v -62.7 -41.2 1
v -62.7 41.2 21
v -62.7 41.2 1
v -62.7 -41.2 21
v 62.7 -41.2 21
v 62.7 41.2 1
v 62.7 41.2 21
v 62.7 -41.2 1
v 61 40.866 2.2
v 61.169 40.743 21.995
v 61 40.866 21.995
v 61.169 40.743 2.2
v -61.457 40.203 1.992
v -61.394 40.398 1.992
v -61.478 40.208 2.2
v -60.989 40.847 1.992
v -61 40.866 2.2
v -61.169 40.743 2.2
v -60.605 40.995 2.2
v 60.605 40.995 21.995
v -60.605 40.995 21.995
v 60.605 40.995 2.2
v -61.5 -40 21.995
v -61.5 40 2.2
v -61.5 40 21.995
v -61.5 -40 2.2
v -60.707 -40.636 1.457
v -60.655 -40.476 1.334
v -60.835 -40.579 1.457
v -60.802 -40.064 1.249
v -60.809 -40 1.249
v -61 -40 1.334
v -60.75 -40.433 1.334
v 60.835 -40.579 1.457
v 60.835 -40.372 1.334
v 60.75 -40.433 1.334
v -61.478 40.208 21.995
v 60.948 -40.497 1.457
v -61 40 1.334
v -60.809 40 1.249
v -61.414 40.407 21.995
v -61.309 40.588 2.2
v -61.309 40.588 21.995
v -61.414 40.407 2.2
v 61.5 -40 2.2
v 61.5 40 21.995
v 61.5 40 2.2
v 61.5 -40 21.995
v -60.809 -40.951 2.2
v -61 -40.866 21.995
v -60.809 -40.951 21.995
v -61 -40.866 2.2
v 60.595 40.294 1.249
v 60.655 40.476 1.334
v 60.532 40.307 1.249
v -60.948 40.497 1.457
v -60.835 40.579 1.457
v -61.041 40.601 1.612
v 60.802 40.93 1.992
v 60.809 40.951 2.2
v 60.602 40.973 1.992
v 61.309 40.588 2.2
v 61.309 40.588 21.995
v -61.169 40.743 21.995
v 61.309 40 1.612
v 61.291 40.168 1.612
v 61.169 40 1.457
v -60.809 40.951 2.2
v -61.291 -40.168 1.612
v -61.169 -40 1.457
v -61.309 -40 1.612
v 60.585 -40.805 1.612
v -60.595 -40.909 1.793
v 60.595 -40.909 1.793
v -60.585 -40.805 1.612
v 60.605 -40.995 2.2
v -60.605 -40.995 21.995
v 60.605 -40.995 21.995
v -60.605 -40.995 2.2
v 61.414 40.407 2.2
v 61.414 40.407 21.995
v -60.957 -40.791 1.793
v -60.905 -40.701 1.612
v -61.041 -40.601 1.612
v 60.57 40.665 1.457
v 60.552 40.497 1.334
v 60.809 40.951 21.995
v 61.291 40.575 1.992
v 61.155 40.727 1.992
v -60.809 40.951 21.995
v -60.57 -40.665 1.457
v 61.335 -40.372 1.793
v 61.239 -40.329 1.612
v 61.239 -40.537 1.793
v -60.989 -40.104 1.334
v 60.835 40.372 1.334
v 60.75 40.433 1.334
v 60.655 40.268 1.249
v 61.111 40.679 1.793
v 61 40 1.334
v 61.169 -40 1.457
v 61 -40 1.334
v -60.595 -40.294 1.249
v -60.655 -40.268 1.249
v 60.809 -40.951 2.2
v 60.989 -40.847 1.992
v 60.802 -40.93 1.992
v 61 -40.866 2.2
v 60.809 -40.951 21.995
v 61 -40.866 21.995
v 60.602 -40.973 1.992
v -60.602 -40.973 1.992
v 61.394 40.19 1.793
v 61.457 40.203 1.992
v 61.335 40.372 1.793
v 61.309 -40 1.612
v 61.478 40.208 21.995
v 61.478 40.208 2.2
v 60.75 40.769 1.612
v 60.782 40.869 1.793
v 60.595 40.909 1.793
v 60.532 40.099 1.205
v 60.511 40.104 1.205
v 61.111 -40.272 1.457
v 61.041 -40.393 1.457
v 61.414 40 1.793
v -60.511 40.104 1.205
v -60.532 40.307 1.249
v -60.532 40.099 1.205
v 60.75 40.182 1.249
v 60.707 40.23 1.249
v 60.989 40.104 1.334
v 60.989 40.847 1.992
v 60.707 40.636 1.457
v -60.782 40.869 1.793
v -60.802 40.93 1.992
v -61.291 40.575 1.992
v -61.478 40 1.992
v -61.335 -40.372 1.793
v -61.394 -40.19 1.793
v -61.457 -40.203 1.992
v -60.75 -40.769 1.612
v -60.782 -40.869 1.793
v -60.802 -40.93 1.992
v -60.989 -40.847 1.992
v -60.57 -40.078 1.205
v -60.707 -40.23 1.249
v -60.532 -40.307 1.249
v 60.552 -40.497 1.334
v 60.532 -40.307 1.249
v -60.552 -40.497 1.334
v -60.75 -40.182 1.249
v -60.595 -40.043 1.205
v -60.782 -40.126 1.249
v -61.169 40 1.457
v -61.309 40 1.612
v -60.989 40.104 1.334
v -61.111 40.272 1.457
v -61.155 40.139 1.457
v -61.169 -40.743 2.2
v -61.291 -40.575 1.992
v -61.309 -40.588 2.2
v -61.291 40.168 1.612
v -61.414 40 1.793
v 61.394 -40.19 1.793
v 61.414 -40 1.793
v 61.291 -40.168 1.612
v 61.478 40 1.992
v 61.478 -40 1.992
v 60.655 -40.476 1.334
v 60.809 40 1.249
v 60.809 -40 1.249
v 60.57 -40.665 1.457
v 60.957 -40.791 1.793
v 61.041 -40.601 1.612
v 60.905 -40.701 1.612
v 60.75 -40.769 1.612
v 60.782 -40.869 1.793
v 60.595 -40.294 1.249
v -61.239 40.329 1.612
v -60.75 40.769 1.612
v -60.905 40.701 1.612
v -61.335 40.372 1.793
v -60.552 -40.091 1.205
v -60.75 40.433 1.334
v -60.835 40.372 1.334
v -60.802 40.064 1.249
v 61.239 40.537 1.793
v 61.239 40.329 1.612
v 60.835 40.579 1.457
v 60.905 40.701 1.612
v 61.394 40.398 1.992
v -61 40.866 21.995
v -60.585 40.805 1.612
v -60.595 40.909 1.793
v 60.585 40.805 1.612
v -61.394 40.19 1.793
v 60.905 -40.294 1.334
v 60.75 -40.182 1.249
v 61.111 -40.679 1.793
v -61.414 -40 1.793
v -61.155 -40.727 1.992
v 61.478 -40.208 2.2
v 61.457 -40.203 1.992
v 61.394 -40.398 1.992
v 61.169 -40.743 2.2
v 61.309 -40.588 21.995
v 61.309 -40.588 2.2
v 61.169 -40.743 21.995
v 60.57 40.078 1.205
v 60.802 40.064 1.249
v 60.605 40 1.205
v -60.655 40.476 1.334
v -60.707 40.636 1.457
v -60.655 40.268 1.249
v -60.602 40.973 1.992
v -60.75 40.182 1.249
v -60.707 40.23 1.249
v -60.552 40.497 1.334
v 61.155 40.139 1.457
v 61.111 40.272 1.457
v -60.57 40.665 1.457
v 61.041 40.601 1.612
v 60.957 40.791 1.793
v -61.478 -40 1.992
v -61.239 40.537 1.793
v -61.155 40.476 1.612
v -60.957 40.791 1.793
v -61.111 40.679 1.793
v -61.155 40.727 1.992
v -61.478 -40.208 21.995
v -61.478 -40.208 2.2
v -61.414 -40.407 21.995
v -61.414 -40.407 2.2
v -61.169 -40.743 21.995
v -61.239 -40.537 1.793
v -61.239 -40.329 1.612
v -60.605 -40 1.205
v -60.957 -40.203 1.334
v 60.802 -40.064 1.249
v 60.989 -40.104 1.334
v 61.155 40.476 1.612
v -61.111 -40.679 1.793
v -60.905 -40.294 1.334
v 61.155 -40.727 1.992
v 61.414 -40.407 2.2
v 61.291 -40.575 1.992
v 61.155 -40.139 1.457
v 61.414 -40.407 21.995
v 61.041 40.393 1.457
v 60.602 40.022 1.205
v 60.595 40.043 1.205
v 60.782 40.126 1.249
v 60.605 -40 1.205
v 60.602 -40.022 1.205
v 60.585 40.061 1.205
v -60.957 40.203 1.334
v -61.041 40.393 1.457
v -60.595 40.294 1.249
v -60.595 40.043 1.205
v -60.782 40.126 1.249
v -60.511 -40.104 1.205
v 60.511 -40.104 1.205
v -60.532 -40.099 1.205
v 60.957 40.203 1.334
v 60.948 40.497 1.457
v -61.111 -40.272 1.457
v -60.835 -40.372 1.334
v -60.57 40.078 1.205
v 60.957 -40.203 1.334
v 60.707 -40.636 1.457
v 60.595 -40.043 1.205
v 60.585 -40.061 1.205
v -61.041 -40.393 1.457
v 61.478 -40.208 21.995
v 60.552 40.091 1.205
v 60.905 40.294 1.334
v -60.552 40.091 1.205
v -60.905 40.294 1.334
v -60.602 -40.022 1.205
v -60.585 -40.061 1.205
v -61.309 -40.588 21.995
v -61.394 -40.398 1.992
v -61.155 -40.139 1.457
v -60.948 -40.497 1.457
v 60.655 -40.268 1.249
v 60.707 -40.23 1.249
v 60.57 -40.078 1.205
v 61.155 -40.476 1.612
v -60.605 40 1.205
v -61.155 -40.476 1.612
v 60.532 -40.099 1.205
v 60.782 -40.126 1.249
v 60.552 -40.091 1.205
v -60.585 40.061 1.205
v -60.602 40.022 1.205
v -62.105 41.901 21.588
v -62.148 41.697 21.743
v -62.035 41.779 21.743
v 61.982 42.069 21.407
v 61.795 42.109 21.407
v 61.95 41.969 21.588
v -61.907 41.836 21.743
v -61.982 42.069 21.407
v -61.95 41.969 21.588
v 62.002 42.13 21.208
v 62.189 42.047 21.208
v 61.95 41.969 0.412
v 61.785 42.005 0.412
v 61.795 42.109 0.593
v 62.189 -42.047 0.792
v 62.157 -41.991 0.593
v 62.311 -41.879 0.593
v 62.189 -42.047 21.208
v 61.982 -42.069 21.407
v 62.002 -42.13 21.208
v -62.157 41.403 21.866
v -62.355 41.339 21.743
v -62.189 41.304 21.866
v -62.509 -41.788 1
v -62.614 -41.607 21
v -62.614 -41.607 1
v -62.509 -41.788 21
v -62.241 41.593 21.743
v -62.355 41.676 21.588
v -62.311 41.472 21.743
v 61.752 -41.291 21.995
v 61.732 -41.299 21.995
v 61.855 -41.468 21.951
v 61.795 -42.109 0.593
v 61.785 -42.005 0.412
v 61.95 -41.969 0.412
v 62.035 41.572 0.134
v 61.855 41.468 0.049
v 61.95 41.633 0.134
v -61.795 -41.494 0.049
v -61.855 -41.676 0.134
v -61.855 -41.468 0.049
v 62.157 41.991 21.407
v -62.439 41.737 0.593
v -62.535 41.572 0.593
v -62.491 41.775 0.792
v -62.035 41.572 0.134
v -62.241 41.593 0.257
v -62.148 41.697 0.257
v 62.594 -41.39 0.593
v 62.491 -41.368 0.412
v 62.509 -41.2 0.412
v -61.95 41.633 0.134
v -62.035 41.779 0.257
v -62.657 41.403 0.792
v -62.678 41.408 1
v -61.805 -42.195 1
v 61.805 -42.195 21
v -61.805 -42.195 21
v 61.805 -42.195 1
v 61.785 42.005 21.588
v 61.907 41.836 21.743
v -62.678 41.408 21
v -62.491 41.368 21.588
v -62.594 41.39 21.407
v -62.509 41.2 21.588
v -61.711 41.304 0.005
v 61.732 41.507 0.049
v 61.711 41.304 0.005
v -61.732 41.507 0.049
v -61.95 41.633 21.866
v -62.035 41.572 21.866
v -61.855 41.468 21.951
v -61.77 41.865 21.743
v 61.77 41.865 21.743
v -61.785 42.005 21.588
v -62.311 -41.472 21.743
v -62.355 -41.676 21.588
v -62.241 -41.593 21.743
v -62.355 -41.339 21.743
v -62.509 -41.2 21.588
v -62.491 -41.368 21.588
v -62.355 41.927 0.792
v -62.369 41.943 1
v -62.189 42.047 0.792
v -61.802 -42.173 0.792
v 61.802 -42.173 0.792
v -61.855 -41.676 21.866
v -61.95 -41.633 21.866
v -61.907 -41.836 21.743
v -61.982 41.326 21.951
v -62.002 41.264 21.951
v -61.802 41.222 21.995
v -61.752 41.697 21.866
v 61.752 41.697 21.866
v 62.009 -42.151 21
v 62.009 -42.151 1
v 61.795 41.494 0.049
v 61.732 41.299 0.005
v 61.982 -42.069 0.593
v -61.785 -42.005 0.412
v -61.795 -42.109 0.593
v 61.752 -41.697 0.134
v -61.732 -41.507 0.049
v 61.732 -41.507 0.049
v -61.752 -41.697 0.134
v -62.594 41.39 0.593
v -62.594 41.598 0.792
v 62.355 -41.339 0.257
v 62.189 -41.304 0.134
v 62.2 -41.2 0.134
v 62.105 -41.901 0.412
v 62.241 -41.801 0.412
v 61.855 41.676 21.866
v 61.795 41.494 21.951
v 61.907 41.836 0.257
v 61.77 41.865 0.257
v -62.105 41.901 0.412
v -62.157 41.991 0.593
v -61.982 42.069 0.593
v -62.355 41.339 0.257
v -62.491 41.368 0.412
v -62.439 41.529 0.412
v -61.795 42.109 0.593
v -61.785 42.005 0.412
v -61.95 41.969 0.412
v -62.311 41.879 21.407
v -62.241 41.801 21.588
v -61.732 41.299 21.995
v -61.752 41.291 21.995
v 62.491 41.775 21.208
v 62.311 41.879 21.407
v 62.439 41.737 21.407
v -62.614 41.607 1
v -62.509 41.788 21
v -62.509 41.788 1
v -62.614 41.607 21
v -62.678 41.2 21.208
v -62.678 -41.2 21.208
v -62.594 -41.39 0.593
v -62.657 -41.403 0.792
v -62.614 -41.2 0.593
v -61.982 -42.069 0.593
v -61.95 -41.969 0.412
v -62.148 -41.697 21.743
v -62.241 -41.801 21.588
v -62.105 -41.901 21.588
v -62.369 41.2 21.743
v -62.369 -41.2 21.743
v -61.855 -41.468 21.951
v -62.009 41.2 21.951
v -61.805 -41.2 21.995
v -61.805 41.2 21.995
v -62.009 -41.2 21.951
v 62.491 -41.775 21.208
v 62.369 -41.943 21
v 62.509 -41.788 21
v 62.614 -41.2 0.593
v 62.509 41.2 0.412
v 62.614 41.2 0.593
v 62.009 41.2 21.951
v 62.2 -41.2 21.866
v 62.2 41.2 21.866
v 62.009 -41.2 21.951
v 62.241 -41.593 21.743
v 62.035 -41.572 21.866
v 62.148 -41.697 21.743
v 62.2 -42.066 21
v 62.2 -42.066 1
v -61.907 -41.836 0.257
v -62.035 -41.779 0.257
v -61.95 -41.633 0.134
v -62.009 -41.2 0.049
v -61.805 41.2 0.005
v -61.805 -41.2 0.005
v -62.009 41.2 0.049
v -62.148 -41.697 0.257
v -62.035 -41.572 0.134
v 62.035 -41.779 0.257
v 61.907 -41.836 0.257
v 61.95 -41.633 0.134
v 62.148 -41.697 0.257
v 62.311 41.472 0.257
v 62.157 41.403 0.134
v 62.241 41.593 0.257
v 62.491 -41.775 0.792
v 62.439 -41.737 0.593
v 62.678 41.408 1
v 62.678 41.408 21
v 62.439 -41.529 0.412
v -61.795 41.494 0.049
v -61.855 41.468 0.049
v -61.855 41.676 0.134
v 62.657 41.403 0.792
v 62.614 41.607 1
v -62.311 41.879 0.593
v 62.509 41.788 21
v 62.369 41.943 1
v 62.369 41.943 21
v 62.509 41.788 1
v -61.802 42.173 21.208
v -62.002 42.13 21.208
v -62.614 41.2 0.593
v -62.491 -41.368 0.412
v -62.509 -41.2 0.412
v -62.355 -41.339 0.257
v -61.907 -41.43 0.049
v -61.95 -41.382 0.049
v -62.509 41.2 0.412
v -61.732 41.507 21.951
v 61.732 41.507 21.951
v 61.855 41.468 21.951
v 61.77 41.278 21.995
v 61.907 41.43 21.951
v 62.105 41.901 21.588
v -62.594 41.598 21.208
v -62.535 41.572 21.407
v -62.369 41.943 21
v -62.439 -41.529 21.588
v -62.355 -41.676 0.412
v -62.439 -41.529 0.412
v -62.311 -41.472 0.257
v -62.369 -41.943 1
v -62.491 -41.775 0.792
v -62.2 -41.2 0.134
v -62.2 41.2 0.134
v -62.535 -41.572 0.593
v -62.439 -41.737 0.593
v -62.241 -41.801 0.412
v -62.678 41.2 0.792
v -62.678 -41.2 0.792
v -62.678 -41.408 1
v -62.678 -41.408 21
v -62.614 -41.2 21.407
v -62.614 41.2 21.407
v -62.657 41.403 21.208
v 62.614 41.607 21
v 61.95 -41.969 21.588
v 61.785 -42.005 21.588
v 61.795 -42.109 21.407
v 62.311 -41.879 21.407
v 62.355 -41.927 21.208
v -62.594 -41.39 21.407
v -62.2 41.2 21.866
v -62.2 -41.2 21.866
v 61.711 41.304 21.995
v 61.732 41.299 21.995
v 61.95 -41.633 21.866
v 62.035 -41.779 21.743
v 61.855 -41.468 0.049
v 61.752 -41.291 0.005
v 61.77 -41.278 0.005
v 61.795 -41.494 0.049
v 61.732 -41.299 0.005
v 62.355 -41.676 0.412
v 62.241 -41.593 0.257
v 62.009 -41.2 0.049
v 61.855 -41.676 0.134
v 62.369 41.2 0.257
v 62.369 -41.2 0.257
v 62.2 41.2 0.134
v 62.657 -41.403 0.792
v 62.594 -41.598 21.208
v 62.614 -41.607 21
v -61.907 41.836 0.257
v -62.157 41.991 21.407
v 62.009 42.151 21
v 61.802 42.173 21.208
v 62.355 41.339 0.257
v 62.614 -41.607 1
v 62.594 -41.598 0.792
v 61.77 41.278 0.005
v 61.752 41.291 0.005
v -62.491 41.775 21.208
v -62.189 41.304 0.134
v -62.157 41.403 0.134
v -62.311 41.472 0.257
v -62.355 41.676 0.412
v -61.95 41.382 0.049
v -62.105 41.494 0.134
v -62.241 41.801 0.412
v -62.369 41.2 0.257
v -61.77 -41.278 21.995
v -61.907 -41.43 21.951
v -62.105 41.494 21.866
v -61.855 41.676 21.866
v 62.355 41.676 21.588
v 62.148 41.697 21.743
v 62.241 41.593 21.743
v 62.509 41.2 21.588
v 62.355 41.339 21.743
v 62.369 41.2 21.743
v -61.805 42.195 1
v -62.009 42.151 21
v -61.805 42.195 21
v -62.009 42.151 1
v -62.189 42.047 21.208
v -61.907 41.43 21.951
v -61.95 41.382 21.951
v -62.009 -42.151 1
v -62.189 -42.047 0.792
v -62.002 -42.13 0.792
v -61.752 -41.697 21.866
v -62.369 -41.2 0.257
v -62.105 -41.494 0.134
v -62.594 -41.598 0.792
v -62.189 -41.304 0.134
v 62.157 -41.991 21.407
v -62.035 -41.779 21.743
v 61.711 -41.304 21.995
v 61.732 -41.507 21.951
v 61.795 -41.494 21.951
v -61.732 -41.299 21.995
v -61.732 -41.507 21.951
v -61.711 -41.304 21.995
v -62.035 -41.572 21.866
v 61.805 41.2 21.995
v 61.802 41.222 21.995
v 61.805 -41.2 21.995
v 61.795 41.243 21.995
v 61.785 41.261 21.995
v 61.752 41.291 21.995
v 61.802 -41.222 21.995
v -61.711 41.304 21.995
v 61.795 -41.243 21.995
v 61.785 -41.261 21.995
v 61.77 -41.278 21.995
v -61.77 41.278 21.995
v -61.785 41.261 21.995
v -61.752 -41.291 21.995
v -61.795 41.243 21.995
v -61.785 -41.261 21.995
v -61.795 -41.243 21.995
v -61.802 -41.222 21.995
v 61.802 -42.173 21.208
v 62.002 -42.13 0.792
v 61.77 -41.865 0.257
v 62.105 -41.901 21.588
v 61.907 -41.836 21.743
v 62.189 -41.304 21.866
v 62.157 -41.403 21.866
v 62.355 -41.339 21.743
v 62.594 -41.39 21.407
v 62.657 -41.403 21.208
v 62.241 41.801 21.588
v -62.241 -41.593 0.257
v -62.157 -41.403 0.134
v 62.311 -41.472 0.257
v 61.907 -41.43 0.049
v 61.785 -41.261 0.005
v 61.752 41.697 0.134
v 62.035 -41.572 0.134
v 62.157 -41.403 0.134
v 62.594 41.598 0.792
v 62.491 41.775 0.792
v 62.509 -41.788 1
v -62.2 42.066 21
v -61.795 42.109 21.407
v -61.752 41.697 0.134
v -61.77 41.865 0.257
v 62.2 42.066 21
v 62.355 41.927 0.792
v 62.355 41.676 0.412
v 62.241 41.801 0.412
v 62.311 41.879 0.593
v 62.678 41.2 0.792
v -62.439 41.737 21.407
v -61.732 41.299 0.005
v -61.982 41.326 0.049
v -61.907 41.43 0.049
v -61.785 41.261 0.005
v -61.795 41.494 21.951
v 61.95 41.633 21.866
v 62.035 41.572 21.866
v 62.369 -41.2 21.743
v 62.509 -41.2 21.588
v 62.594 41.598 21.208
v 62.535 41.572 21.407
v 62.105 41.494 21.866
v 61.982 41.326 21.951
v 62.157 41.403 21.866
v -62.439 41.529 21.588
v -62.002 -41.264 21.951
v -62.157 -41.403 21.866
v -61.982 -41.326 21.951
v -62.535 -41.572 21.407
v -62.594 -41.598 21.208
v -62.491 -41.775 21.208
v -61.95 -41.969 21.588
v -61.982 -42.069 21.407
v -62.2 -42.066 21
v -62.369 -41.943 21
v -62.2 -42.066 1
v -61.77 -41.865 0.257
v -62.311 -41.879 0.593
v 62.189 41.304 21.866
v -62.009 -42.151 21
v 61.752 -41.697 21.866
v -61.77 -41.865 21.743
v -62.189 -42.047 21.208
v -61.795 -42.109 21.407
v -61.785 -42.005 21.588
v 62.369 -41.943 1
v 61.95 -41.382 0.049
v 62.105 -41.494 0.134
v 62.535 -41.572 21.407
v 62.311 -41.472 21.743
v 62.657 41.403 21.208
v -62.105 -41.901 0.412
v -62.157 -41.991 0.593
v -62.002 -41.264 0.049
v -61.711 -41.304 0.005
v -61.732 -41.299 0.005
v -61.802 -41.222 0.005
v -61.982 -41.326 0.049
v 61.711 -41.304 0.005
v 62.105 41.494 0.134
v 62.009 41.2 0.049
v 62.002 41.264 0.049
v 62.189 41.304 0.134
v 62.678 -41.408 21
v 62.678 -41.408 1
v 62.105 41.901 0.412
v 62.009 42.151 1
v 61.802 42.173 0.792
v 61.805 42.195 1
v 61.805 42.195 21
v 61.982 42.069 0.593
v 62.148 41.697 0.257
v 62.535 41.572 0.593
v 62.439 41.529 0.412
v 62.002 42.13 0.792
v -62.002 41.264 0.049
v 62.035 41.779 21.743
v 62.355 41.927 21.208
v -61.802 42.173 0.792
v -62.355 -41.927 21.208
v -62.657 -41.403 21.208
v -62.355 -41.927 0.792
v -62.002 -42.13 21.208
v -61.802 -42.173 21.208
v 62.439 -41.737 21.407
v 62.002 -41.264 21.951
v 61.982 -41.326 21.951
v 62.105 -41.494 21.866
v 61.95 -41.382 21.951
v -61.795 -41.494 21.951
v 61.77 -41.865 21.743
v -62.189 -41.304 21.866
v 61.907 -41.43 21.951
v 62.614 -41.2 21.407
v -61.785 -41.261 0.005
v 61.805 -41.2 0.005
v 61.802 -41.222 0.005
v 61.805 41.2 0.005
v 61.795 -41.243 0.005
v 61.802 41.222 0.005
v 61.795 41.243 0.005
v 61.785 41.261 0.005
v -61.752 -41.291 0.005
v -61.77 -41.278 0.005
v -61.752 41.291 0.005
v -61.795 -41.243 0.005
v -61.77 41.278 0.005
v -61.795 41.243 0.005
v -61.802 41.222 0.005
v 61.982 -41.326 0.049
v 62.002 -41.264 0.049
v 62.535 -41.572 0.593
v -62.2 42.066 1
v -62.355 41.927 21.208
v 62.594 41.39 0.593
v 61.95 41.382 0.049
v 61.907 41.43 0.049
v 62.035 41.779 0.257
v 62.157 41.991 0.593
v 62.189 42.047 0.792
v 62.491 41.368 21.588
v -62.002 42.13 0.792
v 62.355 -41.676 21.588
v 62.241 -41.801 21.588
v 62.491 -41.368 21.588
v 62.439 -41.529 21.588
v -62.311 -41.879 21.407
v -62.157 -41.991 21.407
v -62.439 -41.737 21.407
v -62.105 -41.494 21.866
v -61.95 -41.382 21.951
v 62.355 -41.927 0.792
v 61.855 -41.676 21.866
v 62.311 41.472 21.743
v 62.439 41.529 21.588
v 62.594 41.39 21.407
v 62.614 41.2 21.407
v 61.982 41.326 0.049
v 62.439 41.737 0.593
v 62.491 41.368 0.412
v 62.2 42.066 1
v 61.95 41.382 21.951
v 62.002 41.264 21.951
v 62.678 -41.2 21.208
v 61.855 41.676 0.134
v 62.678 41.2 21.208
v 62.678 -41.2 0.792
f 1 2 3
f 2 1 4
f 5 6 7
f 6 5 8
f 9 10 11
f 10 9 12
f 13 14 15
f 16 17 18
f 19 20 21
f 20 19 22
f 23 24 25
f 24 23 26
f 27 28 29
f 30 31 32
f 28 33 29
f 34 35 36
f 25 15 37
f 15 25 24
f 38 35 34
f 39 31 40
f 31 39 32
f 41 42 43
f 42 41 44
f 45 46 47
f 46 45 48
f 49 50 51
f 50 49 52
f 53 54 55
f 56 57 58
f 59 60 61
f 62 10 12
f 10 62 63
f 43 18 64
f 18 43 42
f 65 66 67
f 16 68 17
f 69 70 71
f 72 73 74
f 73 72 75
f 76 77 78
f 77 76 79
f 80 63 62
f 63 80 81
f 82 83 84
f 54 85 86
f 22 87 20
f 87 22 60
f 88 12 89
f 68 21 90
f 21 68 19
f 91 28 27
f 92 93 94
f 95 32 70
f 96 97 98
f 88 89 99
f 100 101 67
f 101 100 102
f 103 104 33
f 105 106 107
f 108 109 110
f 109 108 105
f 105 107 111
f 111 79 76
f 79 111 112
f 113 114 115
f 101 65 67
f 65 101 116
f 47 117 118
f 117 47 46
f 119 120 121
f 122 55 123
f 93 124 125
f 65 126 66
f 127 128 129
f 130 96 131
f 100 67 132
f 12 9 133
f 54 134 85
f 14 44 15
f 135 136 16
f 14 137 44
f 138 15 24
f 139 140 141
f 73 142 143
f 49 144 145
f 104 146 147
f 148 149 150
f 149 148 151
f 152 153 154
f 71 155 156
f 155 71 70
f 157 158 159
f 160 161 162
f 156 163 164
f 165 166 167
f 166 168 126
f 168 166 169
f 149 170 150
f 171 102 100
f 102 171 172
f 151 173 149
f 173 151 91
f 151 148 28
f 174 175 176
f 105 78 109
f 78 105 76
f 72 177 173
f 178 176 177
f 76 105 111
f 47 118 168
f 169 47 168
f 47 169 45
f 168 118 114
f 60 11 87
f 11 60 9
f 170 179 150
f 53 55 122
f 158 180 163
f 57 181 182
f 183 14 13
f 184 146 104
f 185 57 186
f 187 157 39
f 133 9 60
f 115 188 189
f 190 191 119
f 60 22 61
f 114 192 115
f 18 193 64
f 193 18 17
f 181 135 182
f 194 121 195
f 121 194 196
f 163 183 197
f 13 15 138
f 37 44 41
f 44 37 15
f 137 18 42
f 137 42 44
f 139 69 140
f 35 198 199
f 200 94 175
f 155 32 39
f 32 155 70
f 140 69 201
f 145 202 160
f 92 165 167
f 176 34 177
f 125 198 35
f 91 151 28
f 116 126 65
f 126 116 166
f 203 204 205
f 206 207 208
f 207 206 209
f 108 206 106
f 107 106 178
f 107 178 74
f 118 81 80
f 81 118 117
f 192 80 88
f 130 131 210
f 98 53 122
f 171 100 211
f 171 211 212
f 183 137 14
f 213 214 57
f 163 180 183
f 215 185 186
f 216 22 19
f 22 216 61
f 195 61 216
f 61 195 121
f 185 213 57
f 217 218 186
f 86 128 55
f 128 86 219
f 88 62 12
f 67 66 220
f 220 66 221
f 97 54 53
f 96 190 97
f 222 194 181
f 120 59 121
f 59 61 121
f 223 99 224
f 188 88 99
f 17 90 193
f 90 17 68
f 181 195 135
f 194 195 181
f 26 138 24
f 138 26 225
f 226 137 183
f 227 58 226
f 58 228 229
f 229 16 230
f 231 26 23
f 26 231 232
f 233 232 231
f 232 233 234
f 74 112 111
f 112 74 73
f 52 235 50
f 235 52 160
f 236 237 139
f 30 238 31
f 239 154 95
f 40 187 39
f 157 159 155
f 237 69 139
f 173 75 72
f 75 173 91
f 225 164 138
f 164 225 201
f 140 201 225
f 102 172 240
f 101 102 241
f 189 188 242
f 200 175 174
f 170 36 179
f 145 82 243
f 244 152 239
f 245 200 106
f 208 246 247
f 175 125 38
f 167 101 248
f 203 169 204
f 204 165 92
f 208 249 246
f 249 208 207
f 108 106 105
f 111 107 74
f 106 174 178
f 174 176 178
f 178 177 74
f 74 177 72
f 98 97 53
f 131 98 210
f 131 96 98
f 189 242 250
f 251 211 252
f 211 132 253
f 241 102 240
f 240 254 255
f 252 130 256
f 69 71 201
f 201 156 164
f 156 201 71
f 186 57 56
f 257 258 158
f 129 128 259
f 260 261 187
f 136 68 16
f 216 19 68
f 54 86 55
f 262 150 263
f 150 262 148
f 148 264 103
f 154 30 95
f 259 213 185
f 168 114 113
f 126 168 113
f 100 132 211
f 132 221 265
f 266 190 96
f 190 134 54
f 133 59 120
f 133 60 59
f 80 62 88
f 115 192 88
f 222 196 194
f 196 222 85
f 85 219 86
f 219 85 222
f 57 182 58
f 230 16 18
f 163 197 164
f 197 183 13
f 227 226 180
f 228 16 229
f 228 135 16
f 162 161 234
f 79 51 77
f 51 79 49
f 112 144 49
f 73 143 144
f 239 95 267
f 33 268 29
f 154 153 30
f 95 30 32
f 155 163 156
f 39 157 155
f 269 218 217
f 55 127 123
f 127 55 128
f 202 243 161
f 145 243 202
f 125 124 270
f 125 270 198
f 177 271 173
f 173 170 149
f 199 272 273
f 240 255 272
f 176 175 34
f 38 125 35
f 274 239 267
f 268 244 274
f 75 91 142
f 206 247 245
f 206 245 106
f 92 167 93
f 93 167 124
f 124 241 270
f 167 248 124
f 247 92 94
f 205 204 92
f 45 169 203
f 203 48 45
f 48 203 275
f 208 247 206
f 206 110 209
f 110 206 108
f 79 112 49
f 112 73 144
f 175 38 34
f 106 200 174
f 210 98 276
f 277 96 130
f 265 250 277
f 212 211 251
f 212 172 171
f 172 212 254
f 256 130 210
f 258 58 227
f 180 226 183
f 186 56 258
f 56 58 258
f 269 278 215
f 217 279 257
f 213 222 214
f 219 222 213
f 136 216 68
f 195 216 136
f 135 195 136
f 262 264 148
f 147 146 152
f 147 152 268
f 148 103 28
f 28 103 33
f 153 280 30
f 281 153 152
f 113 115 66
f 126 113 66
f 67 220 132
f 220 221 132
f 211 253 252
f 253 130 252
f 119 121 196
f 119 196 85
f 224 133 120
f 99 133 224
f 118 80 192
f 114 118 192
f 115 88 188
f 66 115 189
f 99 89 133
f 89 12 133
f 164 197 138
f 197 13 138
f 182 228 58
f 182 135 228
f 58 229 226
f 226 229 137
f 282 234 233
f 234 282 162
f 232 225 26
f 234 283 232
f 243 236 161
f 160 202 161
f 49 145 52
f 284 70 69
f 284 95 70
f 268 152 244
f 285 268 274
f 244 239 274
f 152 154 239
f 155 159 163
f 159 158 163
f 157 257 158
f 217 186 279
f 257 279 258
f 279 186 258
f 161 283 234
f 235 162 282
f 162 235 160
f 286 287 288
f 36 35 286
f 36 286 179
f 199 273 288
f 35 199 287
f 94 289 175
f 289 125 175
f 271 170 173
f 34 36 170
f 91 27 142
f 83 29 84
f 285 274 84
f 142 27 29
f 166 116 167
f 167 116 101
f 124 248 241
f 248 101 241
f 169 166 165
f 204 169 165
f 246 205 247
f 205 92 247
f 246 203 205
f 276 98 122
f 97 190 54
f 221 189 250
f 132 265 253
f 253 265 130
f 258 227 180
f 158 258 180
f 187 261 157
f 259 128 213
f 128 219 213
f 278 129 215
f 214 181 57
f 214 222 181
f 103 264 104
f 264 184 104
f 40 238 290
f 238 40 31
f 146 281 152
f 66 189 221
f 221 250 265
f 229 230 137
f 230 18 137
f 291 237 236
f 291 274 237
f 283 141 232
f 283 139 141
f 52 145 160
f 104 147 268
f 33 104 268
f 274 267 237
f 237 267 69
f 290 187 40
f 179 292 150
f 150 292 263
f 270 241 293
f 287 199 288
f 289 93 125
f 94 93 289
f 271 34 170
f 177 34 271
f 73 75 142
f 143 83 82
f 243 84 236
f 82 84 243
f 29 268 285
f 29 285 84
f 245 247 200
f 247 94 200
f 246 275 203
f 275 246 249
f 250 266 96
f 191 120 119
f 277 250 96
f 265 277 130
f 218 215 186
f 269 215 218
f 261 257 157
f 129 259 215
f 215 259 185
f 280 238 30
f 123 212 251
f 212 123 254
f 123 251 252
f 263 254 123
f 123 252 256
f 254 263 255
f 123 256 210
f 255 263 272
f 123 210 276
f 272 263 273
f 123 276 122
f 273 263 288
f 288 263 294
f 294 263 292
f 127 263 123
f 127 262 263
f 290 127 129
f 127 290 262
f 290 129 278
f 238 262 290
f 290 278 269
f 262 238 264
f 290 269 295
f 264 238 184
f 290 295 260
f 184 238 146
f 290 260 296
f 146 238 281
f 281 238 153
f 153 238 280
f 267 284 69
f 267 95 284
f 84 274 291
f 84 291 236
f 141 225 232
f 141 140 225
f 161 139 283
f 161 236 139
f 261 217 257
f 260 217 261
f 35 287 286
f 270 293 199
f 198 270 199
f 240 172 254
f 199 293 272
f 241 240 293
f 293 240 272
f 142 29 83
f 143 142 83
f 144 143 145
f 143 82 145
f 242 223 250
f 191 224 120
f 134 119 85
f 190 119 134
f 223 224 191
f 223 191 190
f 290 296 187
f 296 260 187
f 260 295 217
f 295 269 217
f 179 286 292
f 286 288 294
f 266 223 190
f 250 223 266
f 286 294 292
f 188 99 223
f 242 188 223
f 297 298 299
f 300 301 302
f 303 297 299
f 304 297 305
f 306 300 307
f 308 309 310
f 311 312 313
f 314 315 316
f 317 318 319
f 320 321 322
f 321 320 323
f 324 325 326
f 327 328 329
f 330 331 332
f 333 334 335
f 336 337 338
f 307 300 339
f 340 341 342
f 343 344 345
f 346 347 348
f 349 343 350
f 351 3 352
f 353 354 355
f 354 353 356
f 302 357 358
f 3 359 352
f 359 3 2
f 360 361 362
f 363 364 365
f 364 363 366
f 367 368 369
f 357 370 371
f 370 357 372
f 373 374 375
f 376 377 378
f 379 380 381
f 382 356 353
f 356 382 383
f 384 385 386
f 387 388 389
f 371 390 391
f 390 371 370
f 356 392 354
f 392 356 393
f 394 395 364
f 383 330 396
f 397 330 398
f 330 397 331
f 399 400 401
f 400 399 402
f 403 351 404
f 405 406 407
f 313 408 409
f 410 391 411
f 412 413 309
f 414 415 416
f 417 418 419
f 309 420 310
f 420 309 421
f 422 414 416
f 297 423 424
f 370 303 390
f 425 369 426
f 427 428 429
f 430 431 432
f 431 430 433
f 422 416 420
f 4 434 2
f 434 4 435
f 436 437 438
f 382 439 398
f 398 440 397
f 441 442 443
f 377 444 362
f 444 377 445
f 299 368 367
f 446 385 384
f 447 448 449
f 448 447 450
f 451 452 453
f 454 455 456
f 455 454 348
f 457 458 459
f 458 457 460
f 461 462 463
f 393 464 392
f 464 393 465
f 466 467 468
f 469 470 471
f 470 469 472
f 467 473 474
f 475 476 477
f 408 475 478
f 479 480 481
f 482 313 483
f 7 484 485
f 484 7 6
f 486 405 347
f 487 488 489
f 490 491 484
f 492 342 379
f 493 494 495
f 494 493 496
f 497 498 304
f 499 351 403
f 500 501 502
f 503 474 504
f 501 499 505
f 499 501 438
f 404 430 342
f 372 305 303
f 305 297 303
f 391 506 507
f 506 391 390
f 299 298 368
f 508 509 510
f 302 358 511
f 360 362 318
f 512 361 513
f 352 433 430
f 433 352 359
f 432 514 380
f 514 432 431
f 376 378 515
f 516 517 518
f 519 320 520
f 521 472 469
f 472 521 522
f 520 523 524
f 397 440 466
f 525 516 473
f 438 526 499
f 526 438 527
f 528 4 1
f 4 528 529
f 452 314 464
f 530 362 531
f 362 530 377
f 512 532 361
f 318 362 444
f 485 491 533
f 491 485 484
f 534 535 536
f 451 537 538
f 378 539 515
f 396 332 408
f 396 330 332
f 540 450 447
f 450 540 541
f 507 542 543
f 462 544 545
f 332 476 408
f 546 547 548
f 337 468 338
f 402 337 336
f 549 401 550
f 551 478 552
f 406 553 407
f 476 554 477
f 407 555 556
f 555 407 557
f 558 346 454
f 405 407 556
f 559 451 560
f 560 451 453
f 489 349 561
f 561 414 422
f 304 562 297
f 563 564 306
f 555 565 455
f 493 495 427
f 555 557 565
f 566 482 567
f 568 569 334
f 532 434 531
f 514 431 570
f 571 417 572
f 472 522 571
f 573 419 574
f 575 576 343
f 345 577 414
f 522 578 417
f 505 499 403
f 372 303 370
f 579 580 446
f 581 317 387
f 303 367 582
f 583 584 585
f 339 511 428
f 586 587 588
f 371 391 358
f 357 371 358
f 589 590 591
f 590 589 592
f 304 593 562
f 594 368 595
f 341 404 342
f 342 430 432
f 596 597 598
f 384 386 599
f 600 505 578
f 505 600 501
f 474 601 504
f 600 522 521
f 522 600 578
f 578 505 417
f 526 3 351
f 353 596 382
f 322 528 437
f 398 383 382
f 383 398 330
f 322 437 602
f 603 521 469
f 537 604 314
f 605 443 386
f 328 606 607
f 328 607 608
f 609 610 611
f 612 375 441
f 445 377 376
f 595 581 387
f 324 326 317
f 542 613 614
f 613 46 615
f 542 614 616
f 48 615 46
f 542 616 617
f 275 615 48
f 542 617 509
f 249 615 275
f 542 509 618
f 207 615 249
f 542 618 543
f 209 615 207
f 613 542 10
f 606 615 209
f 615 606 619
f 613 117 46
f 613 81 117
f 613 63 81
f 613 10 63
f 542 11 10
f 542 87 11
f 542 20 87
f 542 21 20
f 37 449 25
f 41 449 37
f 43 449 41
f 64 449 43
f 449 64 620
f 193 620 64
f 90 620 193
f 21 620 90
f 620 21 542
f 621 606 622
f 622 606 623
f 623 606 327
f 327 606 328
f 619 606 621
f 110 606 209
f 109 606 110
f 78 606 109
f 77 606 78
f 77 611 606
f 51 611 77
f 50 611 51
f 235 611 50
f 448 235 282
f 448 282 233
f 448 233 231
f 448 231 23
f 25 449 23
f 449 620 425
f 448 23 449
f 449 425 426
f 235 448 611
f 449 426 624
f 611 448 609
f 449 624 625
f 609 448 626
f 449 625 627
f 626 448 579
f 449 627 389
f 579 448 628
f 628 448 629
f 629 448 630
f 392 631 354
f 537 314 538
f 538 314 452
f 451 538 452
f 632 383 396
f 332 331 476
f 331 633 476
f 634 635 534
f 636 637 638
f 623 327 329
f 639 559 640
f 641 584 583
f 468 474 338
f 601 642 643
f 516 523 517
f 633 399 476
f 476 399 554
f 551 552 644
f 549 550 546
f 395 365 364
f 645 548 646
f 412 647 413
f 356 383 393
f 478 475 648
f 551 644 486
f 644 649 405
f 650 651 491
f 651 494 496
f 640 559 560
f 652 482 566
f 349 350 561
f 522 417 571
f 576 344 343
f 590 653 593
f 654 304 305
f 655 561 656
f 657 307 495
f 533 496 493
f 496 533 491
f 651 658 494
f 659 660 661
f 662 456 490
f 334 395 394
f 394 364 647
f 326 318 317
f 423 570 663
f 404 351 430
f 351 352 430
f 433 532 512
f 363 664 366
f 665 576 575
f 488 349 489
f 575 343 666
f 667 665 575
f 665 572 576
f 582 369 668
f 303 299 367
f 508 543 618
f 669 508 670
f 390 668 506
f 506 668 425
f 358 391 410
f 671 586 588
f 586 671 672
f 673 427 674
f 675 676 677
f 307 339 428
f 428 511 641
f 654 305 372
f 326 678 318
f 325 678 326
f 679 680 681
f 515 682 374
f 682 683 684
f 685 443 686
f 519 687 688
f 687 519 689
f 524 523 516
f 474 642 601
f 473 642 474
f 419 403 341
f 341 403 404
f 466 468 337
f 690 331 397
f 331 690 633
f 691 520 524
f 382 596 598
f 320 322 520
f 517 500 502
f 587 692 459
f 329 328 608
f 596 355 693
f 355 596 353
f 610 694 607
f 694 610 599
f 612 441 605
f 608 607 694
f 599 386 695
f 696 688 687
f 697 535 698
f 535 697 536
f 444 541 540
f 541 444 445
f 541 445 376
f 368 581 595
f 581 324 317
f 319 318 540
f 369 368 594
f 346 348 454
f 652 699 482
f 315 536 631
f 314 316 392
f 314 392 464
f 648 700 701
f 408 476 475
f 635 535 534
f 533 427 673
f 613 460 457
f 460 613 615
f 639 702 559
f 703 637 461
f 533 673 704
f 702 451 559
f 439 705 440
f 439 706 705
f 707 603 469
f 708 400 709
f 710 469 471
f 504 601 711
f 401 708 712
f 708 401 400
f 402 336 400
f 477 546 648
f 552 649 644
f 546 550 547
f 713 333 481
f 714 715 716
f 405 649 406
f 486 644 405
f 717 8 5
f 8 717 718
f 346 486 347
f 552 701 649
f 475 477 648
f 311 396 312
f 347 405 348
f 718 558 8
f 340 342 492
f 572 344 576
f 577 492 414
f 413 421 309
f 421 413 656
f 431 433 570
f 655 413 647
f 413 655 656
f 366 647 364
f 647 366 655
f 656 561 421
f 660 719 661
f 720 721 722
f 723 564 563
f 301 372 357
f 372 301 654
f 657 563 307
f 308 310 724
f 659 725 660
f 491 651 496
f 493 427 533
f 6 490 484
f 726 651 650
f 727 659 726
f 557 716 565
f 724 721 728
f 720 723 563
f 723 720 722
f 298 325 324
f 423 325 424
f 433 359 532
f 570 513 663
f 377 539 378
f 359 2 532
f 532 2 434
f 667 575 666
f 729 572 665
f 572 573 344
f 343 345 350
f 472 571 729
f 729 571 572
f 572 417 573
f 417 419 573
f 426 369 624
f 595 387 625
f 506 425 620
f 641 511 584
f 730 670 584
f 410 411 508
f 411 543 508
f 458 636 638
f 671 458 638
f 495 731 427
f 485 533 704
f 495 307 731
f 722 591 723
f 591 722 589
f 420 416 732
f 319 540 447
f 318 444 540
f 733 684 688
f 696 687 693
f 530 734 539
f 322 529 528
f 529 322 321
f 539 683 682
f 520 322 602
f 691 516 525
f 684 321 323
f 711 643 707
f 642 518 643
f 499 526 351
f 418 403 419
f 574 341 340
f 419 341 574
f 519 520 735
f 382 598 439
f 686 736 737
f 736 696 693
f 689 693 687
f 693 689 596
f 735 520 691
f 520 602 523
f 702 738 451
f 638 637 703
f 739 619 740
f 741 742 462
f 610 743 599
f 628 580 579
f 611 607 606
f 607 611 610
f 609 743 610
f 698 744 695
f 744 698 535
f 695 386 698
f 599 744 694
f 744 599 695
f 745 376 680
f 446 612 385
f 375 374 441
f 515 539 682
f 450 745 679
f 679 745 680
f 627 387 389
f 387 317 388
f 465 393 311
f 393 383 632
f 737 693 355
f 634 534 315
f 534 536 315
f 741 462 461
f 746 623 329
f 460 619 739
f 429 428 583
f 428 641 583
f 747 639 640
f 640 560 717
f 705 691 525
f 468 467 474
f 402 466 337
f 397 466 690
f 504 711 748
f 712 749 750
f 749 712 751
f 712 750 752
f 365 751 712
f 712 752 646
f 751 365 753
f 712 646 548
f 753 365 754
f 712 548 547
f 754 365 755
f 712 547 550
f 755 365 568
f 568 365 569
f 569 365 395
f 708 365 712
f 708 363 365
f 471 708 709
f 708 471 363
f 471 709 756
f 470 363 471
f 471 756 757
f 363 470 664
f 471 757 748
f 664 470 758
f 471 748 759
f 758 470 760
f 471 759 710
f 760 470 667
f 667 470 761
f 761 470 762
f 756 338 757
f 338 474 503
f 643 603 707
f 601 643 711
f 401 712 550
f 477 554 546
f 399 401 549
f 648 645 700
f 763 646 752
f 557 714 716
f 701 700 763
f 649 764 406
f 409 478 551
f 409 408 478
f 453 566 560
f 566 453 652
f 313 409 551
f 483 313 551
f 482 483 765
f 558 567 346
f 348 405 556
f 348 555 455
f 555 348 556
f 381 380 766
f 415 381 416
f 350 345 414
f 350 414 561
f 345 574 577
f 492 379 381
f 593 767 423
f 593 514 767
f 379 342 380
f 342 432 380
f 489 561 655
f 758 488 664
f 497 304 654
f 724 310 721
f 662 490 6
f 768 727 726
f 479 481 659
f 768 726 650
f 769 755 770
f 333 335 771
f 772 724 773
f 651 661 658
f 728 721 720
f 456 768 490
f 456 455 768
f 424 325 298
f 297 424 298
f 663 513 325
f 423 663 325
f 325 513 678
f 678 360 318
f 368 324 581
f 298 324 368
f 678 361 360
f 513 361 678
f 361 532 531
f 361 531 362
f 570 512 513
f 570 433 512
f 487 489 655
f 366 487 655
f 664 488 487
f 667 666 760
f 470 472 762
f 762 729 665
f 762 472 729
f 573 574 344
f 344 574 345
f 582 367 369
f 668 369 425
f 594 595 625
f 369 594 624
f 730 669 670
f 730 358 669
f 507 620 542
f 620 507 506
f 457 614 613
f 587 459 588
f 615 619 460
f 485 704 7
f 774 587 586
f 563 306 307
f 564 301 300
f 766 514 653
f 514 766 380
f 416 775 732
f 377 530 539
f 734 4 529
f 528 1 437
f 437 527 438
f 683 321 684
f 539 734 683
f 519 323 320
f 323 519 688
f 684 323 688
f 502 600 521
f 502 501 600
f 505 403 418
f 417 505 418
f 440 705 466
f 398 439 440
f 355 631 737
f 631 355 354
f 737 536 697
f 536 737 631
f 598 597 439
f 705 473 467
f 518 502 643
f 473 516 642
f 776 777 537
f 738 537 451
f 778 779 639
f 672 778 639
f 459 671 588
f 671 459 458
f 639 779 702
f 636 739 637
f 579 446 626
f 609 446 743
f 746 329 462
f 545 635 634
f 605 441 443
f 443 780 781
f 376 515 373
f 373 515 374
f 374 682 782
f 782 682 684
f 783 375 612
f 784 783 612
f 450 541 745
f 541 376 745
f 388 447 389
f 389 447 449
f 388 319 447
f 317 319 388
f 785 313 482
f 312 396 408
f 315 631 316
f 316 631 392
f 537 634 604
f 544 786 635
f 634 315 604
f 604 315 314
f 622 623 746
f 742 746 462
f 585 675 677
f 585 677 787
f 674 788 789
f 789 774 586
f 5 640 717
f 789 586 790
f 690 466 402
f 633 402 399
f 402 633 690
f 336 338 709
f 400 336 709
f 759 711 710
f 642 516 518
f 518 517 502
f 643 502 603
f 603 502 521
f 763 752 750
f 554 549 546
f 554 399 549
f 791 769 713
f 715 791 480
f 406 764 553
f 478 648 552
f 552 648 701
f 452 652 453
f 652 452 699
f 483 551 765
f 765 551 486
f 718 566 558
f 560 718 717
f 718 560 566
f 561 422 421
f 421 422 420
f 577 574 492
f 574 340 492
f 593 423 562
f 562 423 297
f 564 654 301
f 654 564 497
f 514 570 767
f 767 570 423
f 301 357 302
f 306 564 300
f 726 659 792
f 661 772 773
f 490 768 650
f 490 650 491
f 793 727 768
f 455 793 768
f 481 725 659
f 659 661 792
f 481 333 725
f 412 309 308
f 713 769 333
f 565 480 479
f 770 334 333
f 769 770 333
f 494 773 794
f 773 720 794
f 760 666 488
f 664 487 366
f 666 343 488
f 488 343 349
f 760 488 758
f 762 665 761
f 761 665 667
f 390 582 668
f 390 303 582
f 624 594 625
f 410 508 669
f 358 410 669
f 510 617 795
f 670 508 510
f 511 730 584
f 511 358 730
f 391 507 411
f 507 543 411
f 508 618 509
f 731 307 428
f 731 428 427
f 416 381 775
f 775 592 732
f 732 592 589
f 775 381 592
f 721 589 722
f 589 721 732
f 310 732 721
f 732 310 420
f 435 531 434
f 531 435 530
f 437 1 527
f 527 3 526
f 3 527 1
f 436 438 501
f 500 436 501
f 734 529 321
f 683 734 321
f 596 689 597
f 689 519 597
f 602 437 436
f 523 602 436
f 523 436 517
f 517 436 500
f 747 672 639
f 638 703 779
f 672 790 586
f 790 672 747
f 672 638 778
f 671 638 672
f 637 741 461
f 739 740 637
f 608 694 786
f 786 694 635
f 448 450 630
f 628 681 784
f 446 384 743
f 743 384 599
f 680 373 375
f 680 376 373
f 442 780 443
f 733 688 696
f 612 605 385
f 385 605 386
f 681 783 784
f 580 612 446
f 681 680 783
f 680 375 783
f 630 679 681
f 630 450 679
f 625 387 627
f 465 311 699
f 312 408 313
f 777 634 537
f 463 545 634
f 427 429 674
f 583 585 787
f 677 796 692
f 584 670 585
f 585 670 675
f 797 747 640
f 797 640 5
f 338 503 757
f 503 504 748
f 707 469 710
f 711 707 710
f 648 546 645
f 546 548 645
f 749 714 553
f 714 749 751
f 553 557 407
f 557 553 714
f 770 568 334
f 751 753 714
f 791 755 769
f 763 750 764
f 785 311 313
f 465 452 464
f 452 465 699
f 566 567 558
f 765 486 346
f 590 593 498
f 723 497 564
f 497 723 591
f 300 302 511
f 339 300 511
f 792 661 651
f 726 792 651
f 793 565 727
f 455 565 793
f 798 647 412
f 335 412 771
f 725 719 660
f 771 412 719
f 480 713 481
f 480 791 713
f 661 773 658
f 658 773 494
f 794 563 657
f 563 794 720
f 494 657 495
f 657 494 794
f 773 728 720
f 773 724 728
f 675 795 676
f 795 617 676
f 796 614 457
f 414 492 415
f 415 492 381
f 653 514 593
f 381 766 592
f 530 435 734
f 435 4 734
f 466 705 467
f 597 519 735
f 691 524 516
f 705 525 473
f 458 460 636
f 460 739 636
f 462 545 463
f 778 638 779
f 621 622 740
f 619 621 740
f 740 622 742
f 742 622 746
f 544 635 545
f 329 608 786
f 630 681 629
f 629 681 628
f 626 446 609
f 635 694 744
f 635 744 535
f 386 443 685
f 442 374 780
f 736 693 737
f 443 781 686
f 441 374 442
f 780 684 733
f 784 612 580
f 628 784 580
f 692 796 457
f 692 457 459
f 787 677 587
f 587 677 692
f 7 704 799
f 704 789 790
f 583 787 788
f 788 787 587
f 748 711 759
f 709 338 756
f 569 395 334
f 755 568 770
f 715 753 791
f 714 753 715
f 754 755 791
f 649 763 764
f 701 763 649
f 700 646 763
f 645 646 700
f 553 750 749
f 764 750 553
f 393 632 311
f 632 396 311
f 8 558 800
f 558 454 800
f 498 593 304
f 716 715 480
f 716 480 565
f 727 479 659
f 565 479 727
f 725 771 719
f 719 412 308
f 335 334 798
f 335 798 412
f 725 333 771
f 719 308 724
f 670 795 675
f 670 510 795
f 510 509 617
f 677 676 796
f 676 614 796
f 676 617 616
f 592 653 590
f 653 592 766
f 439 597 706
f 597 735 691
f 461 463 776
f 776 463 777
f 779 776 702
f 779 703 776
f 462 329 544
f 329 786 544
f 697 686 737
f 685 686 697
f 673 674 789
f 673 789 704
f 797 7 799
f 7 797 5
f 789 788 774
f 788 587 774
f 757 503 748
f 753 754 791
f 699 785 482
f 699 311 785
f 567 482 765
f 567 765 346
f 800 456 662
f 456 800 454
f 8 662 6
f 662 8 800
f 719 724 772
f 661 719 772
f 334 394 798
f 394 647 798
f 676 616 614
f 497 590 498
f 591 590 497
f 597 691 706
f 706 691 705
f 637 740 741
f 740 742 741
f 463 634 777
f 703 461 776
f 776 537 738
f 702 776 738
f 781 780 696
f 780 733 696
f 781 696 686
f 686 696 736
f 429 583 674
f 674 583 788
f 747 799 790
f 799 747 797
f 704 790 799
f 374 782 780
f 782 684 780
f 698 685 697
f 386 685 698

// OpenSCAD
$fn=30;

/* [Global] */

// Render
Objects = "LidlessBox"; // [Both, Box, Lid, LidlessBox]

x_sizes = [123];
y_sizes = [82];
z_size = 22;

// Type of lid pattern
gPattern = "Fancy"; //  [Hex, Diamond, Web, Solid, Fancy]
// Tolerance
gTol = 0.3;
// Wall Thickness
gWT = 1.2;
// Curvature bottom
ipR = 1;

/* [Spider Web] */
// Amount of space from one ring or webs to the next
WebSpacing = 5;
// How many rings of webs, best of more than needed
WebStrands = 20;
// Thickness of the strands
WedThickness = 1.8;
// How many segments of web
WebWedges = 12;


/* [Hidden] */
/* Private variables */

// Check if we are in Lidless mode
isLidless = (Objects == "LidlessBox");

// Box Height
TotalZ = z_size;
LidH = 2.2;
RailThick = 1.4;
RailWidth = LidH + RailThick;

function SumList(list, start, end) = (start == end) ? 0 : list[start] + SumList(list, start+1, end);

// Box Length
TotalX = SumList(x_sizes,0,len(x_sizes)) + gWT*(len(x_sizes)+1);

// Box Width - If lidless, we don't need the extra width for the sliding rails
TotalY = isLidless ? 
    SumList(y_sizes,0,len(y_sizes)) + gWT*(len(y_sizes)+1) : 
    SumList(y_sizes,0,len(y_sizes)) + RailWidth*2 + gWT*(len(y_sizes)-1);

echo("Size: ",TotalX,TotalY);
    
// Height not counting the lid. If lidless, height is the full z_size.
AdjBoxHeight = isLidless ? TotalZ : TotalZ - LidH;

 module regular_polygon(order, r=1){
 	angles=[ for (i = [0:order-1]) i*(360/order) ];
 	coords=[ for (th=angles) [r*cos(th), r*sin(th)] ];
 	polygon(coords);
 }

module circle_lattice(ipX, ipY, Spacing=10, Walls=1.2)  {


   intersection() {
      square([ipX,ipY]); 
      union() {
	    for (x=[-Spacing:Spacing:ipX+Spacing]) {
           for (y=[-Spacing:Spacing:ipY+Spacing]){
	          difference()  {
			     translate([x+Spacing/2, y+Spacing/2]) circle(r=Spacing*0.75);
			     translate([x+Spacing/2, y+Spacing/2]) circle(r=(Spacing*0.75)-Walls);
		      }
           }   // end for y        
	    }  // end for x
      } // End union
   }
}


module diamond_lattice(ipX, ipY, DSize, WSize)  {

   lOffset = DSize + WSize;

	difference()  {
		square([ipX, ipY]);
		for (x=[0:lOffset:ipX]) {
            for (y=[0:lOffset:ipY]){
  			   translate([x, y])  regular_polygon(4, r=DSize/2);
			   translate([x+lOffset/2, y+lOffset/2]) regular_polygon(4, r=DSize/2);
		    }
        }        
	}
}

module hex_lattice(ipX, ipY, DSize, WSize)  {
    lXOffset = DSize + WSize;
    lYOffset = (DSize+WSize)/cos(30) * 1.5;

	difference()  {
		square([ipX, ipY]);
		for (x=[0:lXOffset:ipX]) {
            for (y=[0:lYOffset:ipY]){
  			   translate([x, y]) rotate([0,0,30]) regular_polygon(6, r=DSize/cos(30)/2);
			   translate([x+lXOffset/2, y+lYOffset/2]) rotate([0,0,30]) regular_polygon(6, r=DSize/cos(30)/2);
		    }
        }  
	}
}

// Make a star with X points
module star(radius, wedges)
{
	angle = 360 / wedges;
	difference() {
		circle(radius, $fn = wedges);
		for(i = [0:wedges - 1]) {
			rotate(angle / 2 + angle * i) translate([radius, 0, 0]) 
			    scale([0.8, 1, 1]) 
				    circle(radius * sin(angle / 2), $fn = 24);
		}
	}
}

module spider_web(ipWebSpacing, strands, ipThickness, wedges) 
{
	for(i = [0:strands - 1]) 
    {
        difference() {
            star(ipWebSpacing * i, wedges);
            offset(r = -ipThickness) star(ipWebSpacing * i, wedges);
        }
	}

	angle = 360 / wedges;
	for(i = [0:wedges - 1])
    {
		rotate(angle * i) translate([0, -ipThickness / 2, 0]) 
			square([ipWebSpacing * strands, ipThickness]);
	}    
}


module RCube(x,y,z,ipR=ipR) {
    translate([-x/2,-y/2,0]) hull(){
      translate([ipR,ipR,ipR]) sphere(ipR);
      translate([x-ipR,ipR,ipR]) sphere(ipR);
      translate([ipR,y-ipR,ipR]) sphere(ipR);
      translate([x-ipR,y-ipR,ipR]) sphere(ipR);
      translate([ipR,ipR,z-ipR]) sphere(ipR);
      translate([x-ipR,ipR,z-ipR]) sphere(ipR);
      translate([ipR,y-ipR,z-ipR]) sphere(ipR);
      translate([x-ipR,y-ipR,z-ipR]) sphere(ipR);
      }  
} 


module lid(ipPattern = "Hex", ipTol = 0.3){
  lAdjX = TotalX;
  lAdjY = TotalY-RailWidth*2-ipTol*2;  
  lAdjZ = LidH;
  CutX = lAdjX - 8;
  CutY = lAdjY - 8;
  lFingerX = 15;
  lFingerY = 16;  

  // main square with center removed for a pattern. 0.01 addition is a kludge to avoid a 2d surface remainging when substracting the lid from the box.
  difference() {
      translate([0,0,lAdjZ/2]) cube([lAdjX+0.01, lAdjY+0.01 , lAdjZ], center=true);

      translate([0,0,lAdjZ/2]) cube([CutX, CutY, lAdjZ], center = true);
      translate([TotalX/2-gWT/2,0,LidH/2])cube([gWT+0.01,TotalY-RailWidth,LidH],center=true);

     // make a slot for the latch can flex          
     translate([TotalX/2,TotalY/2-RailWidth-1.4,-1]) RCube(18,0.8,4,0.4);
     translate([TotalX/2,-TotalY/2+RailWidth+1.4,-1]) RCube(18,0.8,4,0.4);
  }
  
  // The Side triangles
  difference() {
    intersection () {
      union () {
          translate([-lAdjX/2,-lAdjY/2-LidH,LidH]) rotate([0,90,0]) linear_extrude(TotalX-2) polygon([[LidH,0],[LidH,LidH],[0,LidH]], paths=[[0,1,2]]);
          translate([-lAdjX/2,lAdjY/2,LidH]) rotate([0,90,0]) linear_extrude(TotalX-2) polygon([[0,0],[LidH,0],[LidH,LidH]], paths=[[0,1,2]]);
      }
      
      // check if this is real lid (ipTol>0) or negative lid (iptol = 0)
      // if real lid remove center for pattern and remove latches
      if (ipTol>0) 
         {cube([lAdjX, lAdjY + 2*LidH-0.2, lAdjZ*2], center=true);}
    }
       
    if (ipTol>0)
    {
        // cut out slots for the latch 
        translate([TotalX/2-7,lAdjY/2+RailWidth/2+ipTol,LidH/2]) scale([1.5,1,1]) rotate([0,0,45]) cube ([2+ipTol,2+ipTol,LidH+1],center=true);
          
        translate([TotalX/2-7,-lAdjY/2-RailWidth/2-ipTol,LidH/2]) scale([1.5,1,1]) rotate([0,0,45]) cube ([2+ipTol,2+ipTol,LidH+1],center=true);
  
        // trip the rail to ease going past the nub
        translate([TotalX/2,TotalY/2-LidH/2-ipTol,0]) cube([12,LidH,LidH*2],center=true); 
        translate([TotalX/2,-TotalY/2+LidH/2+ipTol,0]) cube([12,LidH,LidH*2],center=true); 
    }
    
  }
 
  // Finger slot
  difference () {
      translate([-CutX/2,-lFingerY/2,0]) cube([lFingerX, lFingerY, lAdjZ]); 
      translate([-CutX/2+lFingerX/2,0,20+LidH/2])sphere(20);     
  }


  // Solid top
  if (ipPattern == "Solid") 
      {   
       difference (){ 
          translate([-CutX/2,-CutY/2,0]) cube([CutX, CutY,   lAdjZ]);
          translate([-CutX/2,-lFingerY/2,0]) cube([lFingerX, lFingerY, lAdjZ]); 
      }
    }
    

  // Spiderweb top
  if (ipPattern == "Web") 
    {
       difference (){ 
         intersection () 
        {    
             linear_extrude(height = lAdjZ) spider_web(WebSpacing, WebStrands, WedThickness, WebWedges);  
              translate([-CutX/2,-CutY/2,0]) cube([CutX, CutY, LidH*2]); 
        }
          translate([-CutX/2,-lFingerY/2,0]) cube([lFingerX, lFingerY, lAdjZ]); 
      }
    }

  // Hex top
  if (ipPattern == "Hex") 
    {   
       difference (){ 
          translate([-CutX/2,-CutY/2,0]) linear_extrude(height = lAdjZ) hex_lattice(CutX,CutY,6,2);
          translate([-CutX/2,-lFingerY/2,0]) cube([lFingerX, lFingerY, lAdjZ]); 
      }
    }

  // Diamond top
  if (ipPattern == "Diamond") 
    {
      difference (){ 
        translate([-CutX/2,-CutY/2,0]) linear_extrude(height = lAdjZ) diamond_lattice(CutX,CutY,7,2);
        translate([-CutX/2,-lFingerY/2,0]) cube([lFingerX, lFingerY, lAdjZ]); 
      }
    }

  // fancy top
  if (ipPattern == "Fancy") 
    {
       echo(CutX,CutY);
      difference (){ 
        translate([-CutX/2,-CutY/2,0]) linear_extrude(height = lAdjZ) circle_lattice(CutX,CutY);
        translate([-CutX/2,-lFingerY/2,0]) cube([lFingerX, lFingerY, lAdjZ]); 
      }
    }

}


module box () {
//  Main Box
  difference() {    
    translate ([0,0,AdjBoxHeight/2]) cube([TotalX,TotalY,AdjBoxHeight], center = true);

    // Scope out compartment areas
    for(nX=[0:len(x_sizes)-1])
    {
      for(nY=[0:len(y_sizes)-1])
      {
          xOffset = SumList(x_sizes,0,nX) + gWT*(nX+1) + x_sizes[nX]/2 - TotalX/2;
          
          // If lidless, we start from a standard wall thickness. If lidded, we start from RailWidth.
          yStart = isLidless ? gWT : RailWidth;
          yOffset = SumList(y_sizes,0,nY) + yStart + gWT*nY + y_sizes[nY]/2 - TotalY/2;
          
          translate([xOffset,yOffset,gWT]) RCube(x_sizes[nX], y_sizes[nY] ,AdjBoxHeight+20);
      }
    }
  }

  // Only render rails, backstops, and latches if NOT LidlessBox
  if (!isLidless) {
      // top rails
      difference() {
         union() {
              translate([0,-TotalY/2+RailWidth/2,AdjBoxHeight+LidH/2]) cube([TotalX,RailWidth,LidH],center = true);  
              translate([0,TotalY/2-RailWidth/2,AdjBoxHeight+LidH/2]) cube([TotalX,RailWidth,LidH],center = true);
               }
           
          // Trim each rail top to a 45 degree angle     
          translate([0,-TotalY/2,AdjBoxHeight+RailWidth]) rotate([45,0,0]) cube([TotalX,RailWidth+0.7,RailWidth+0.7], center=true); 
          translate([0,TotalY/2,AdjBoxHeight+RailWidth])  rotate([45,0,0]) cube([TotalX,RailWidth+0.7,RailWidth+0.7], center=true);  

          // Substract the lid from the rails
          translate([0,0,AdjBoxHeight]) lid(ipPattern = "Solid",ipTol =0);      
      }  
      
       // add backstop
       translate([TotalX/2-1/2,0,TotalZ-LidH/2])cube([1,TotalY-RailWidth,LidH],center=true);
      
      // create the latches 
        translate([TotalX/2-7,TotalY/2-0.1-RailWidth/2,TotalZ-LidH/2]) scale([1.5,1,1]) difference(){
          rotate([0,0,45]) cube ([2,2,LidH+1],center=true);
          translate([0,2,0]) cube ([4,4,LidH+2],center=true);
          translate([0,-2,0])cube([2,2,LidH+2], center=true);
          }  
        translate([TotalX/2-7,-TotalY/2+0.1+RailWidth/2,TotalZ-LidH/2]) scale([1.5,1,1]) difference(){
          rotate([0,0,45]) cube ([2,2,LidH+1],center=true);
          translate([0,-2,0]) cube ([4,4,LidH+2],center=true);
          translate([0,2,0])cube([2,2,LidH+2], center=true);
          }
  }
} 

// Production Box
if ((Objects == "Both") || (Objects == "Box") || (Objects == "LidlessBox")){
  intersection() {
     box();
     // Final container curvature cut
     RCube(TotalX,TotalY,AdjBoxHeight + (isLidless ? 0 : LidH),1);
  }
}

// Production Lid
if ((Objects == "Both")  || (Objects == "Lid")){
  translate([-TotalX - 10,0,0]) lid(ipPattern = gPattern, ipTol = gTol);
}
